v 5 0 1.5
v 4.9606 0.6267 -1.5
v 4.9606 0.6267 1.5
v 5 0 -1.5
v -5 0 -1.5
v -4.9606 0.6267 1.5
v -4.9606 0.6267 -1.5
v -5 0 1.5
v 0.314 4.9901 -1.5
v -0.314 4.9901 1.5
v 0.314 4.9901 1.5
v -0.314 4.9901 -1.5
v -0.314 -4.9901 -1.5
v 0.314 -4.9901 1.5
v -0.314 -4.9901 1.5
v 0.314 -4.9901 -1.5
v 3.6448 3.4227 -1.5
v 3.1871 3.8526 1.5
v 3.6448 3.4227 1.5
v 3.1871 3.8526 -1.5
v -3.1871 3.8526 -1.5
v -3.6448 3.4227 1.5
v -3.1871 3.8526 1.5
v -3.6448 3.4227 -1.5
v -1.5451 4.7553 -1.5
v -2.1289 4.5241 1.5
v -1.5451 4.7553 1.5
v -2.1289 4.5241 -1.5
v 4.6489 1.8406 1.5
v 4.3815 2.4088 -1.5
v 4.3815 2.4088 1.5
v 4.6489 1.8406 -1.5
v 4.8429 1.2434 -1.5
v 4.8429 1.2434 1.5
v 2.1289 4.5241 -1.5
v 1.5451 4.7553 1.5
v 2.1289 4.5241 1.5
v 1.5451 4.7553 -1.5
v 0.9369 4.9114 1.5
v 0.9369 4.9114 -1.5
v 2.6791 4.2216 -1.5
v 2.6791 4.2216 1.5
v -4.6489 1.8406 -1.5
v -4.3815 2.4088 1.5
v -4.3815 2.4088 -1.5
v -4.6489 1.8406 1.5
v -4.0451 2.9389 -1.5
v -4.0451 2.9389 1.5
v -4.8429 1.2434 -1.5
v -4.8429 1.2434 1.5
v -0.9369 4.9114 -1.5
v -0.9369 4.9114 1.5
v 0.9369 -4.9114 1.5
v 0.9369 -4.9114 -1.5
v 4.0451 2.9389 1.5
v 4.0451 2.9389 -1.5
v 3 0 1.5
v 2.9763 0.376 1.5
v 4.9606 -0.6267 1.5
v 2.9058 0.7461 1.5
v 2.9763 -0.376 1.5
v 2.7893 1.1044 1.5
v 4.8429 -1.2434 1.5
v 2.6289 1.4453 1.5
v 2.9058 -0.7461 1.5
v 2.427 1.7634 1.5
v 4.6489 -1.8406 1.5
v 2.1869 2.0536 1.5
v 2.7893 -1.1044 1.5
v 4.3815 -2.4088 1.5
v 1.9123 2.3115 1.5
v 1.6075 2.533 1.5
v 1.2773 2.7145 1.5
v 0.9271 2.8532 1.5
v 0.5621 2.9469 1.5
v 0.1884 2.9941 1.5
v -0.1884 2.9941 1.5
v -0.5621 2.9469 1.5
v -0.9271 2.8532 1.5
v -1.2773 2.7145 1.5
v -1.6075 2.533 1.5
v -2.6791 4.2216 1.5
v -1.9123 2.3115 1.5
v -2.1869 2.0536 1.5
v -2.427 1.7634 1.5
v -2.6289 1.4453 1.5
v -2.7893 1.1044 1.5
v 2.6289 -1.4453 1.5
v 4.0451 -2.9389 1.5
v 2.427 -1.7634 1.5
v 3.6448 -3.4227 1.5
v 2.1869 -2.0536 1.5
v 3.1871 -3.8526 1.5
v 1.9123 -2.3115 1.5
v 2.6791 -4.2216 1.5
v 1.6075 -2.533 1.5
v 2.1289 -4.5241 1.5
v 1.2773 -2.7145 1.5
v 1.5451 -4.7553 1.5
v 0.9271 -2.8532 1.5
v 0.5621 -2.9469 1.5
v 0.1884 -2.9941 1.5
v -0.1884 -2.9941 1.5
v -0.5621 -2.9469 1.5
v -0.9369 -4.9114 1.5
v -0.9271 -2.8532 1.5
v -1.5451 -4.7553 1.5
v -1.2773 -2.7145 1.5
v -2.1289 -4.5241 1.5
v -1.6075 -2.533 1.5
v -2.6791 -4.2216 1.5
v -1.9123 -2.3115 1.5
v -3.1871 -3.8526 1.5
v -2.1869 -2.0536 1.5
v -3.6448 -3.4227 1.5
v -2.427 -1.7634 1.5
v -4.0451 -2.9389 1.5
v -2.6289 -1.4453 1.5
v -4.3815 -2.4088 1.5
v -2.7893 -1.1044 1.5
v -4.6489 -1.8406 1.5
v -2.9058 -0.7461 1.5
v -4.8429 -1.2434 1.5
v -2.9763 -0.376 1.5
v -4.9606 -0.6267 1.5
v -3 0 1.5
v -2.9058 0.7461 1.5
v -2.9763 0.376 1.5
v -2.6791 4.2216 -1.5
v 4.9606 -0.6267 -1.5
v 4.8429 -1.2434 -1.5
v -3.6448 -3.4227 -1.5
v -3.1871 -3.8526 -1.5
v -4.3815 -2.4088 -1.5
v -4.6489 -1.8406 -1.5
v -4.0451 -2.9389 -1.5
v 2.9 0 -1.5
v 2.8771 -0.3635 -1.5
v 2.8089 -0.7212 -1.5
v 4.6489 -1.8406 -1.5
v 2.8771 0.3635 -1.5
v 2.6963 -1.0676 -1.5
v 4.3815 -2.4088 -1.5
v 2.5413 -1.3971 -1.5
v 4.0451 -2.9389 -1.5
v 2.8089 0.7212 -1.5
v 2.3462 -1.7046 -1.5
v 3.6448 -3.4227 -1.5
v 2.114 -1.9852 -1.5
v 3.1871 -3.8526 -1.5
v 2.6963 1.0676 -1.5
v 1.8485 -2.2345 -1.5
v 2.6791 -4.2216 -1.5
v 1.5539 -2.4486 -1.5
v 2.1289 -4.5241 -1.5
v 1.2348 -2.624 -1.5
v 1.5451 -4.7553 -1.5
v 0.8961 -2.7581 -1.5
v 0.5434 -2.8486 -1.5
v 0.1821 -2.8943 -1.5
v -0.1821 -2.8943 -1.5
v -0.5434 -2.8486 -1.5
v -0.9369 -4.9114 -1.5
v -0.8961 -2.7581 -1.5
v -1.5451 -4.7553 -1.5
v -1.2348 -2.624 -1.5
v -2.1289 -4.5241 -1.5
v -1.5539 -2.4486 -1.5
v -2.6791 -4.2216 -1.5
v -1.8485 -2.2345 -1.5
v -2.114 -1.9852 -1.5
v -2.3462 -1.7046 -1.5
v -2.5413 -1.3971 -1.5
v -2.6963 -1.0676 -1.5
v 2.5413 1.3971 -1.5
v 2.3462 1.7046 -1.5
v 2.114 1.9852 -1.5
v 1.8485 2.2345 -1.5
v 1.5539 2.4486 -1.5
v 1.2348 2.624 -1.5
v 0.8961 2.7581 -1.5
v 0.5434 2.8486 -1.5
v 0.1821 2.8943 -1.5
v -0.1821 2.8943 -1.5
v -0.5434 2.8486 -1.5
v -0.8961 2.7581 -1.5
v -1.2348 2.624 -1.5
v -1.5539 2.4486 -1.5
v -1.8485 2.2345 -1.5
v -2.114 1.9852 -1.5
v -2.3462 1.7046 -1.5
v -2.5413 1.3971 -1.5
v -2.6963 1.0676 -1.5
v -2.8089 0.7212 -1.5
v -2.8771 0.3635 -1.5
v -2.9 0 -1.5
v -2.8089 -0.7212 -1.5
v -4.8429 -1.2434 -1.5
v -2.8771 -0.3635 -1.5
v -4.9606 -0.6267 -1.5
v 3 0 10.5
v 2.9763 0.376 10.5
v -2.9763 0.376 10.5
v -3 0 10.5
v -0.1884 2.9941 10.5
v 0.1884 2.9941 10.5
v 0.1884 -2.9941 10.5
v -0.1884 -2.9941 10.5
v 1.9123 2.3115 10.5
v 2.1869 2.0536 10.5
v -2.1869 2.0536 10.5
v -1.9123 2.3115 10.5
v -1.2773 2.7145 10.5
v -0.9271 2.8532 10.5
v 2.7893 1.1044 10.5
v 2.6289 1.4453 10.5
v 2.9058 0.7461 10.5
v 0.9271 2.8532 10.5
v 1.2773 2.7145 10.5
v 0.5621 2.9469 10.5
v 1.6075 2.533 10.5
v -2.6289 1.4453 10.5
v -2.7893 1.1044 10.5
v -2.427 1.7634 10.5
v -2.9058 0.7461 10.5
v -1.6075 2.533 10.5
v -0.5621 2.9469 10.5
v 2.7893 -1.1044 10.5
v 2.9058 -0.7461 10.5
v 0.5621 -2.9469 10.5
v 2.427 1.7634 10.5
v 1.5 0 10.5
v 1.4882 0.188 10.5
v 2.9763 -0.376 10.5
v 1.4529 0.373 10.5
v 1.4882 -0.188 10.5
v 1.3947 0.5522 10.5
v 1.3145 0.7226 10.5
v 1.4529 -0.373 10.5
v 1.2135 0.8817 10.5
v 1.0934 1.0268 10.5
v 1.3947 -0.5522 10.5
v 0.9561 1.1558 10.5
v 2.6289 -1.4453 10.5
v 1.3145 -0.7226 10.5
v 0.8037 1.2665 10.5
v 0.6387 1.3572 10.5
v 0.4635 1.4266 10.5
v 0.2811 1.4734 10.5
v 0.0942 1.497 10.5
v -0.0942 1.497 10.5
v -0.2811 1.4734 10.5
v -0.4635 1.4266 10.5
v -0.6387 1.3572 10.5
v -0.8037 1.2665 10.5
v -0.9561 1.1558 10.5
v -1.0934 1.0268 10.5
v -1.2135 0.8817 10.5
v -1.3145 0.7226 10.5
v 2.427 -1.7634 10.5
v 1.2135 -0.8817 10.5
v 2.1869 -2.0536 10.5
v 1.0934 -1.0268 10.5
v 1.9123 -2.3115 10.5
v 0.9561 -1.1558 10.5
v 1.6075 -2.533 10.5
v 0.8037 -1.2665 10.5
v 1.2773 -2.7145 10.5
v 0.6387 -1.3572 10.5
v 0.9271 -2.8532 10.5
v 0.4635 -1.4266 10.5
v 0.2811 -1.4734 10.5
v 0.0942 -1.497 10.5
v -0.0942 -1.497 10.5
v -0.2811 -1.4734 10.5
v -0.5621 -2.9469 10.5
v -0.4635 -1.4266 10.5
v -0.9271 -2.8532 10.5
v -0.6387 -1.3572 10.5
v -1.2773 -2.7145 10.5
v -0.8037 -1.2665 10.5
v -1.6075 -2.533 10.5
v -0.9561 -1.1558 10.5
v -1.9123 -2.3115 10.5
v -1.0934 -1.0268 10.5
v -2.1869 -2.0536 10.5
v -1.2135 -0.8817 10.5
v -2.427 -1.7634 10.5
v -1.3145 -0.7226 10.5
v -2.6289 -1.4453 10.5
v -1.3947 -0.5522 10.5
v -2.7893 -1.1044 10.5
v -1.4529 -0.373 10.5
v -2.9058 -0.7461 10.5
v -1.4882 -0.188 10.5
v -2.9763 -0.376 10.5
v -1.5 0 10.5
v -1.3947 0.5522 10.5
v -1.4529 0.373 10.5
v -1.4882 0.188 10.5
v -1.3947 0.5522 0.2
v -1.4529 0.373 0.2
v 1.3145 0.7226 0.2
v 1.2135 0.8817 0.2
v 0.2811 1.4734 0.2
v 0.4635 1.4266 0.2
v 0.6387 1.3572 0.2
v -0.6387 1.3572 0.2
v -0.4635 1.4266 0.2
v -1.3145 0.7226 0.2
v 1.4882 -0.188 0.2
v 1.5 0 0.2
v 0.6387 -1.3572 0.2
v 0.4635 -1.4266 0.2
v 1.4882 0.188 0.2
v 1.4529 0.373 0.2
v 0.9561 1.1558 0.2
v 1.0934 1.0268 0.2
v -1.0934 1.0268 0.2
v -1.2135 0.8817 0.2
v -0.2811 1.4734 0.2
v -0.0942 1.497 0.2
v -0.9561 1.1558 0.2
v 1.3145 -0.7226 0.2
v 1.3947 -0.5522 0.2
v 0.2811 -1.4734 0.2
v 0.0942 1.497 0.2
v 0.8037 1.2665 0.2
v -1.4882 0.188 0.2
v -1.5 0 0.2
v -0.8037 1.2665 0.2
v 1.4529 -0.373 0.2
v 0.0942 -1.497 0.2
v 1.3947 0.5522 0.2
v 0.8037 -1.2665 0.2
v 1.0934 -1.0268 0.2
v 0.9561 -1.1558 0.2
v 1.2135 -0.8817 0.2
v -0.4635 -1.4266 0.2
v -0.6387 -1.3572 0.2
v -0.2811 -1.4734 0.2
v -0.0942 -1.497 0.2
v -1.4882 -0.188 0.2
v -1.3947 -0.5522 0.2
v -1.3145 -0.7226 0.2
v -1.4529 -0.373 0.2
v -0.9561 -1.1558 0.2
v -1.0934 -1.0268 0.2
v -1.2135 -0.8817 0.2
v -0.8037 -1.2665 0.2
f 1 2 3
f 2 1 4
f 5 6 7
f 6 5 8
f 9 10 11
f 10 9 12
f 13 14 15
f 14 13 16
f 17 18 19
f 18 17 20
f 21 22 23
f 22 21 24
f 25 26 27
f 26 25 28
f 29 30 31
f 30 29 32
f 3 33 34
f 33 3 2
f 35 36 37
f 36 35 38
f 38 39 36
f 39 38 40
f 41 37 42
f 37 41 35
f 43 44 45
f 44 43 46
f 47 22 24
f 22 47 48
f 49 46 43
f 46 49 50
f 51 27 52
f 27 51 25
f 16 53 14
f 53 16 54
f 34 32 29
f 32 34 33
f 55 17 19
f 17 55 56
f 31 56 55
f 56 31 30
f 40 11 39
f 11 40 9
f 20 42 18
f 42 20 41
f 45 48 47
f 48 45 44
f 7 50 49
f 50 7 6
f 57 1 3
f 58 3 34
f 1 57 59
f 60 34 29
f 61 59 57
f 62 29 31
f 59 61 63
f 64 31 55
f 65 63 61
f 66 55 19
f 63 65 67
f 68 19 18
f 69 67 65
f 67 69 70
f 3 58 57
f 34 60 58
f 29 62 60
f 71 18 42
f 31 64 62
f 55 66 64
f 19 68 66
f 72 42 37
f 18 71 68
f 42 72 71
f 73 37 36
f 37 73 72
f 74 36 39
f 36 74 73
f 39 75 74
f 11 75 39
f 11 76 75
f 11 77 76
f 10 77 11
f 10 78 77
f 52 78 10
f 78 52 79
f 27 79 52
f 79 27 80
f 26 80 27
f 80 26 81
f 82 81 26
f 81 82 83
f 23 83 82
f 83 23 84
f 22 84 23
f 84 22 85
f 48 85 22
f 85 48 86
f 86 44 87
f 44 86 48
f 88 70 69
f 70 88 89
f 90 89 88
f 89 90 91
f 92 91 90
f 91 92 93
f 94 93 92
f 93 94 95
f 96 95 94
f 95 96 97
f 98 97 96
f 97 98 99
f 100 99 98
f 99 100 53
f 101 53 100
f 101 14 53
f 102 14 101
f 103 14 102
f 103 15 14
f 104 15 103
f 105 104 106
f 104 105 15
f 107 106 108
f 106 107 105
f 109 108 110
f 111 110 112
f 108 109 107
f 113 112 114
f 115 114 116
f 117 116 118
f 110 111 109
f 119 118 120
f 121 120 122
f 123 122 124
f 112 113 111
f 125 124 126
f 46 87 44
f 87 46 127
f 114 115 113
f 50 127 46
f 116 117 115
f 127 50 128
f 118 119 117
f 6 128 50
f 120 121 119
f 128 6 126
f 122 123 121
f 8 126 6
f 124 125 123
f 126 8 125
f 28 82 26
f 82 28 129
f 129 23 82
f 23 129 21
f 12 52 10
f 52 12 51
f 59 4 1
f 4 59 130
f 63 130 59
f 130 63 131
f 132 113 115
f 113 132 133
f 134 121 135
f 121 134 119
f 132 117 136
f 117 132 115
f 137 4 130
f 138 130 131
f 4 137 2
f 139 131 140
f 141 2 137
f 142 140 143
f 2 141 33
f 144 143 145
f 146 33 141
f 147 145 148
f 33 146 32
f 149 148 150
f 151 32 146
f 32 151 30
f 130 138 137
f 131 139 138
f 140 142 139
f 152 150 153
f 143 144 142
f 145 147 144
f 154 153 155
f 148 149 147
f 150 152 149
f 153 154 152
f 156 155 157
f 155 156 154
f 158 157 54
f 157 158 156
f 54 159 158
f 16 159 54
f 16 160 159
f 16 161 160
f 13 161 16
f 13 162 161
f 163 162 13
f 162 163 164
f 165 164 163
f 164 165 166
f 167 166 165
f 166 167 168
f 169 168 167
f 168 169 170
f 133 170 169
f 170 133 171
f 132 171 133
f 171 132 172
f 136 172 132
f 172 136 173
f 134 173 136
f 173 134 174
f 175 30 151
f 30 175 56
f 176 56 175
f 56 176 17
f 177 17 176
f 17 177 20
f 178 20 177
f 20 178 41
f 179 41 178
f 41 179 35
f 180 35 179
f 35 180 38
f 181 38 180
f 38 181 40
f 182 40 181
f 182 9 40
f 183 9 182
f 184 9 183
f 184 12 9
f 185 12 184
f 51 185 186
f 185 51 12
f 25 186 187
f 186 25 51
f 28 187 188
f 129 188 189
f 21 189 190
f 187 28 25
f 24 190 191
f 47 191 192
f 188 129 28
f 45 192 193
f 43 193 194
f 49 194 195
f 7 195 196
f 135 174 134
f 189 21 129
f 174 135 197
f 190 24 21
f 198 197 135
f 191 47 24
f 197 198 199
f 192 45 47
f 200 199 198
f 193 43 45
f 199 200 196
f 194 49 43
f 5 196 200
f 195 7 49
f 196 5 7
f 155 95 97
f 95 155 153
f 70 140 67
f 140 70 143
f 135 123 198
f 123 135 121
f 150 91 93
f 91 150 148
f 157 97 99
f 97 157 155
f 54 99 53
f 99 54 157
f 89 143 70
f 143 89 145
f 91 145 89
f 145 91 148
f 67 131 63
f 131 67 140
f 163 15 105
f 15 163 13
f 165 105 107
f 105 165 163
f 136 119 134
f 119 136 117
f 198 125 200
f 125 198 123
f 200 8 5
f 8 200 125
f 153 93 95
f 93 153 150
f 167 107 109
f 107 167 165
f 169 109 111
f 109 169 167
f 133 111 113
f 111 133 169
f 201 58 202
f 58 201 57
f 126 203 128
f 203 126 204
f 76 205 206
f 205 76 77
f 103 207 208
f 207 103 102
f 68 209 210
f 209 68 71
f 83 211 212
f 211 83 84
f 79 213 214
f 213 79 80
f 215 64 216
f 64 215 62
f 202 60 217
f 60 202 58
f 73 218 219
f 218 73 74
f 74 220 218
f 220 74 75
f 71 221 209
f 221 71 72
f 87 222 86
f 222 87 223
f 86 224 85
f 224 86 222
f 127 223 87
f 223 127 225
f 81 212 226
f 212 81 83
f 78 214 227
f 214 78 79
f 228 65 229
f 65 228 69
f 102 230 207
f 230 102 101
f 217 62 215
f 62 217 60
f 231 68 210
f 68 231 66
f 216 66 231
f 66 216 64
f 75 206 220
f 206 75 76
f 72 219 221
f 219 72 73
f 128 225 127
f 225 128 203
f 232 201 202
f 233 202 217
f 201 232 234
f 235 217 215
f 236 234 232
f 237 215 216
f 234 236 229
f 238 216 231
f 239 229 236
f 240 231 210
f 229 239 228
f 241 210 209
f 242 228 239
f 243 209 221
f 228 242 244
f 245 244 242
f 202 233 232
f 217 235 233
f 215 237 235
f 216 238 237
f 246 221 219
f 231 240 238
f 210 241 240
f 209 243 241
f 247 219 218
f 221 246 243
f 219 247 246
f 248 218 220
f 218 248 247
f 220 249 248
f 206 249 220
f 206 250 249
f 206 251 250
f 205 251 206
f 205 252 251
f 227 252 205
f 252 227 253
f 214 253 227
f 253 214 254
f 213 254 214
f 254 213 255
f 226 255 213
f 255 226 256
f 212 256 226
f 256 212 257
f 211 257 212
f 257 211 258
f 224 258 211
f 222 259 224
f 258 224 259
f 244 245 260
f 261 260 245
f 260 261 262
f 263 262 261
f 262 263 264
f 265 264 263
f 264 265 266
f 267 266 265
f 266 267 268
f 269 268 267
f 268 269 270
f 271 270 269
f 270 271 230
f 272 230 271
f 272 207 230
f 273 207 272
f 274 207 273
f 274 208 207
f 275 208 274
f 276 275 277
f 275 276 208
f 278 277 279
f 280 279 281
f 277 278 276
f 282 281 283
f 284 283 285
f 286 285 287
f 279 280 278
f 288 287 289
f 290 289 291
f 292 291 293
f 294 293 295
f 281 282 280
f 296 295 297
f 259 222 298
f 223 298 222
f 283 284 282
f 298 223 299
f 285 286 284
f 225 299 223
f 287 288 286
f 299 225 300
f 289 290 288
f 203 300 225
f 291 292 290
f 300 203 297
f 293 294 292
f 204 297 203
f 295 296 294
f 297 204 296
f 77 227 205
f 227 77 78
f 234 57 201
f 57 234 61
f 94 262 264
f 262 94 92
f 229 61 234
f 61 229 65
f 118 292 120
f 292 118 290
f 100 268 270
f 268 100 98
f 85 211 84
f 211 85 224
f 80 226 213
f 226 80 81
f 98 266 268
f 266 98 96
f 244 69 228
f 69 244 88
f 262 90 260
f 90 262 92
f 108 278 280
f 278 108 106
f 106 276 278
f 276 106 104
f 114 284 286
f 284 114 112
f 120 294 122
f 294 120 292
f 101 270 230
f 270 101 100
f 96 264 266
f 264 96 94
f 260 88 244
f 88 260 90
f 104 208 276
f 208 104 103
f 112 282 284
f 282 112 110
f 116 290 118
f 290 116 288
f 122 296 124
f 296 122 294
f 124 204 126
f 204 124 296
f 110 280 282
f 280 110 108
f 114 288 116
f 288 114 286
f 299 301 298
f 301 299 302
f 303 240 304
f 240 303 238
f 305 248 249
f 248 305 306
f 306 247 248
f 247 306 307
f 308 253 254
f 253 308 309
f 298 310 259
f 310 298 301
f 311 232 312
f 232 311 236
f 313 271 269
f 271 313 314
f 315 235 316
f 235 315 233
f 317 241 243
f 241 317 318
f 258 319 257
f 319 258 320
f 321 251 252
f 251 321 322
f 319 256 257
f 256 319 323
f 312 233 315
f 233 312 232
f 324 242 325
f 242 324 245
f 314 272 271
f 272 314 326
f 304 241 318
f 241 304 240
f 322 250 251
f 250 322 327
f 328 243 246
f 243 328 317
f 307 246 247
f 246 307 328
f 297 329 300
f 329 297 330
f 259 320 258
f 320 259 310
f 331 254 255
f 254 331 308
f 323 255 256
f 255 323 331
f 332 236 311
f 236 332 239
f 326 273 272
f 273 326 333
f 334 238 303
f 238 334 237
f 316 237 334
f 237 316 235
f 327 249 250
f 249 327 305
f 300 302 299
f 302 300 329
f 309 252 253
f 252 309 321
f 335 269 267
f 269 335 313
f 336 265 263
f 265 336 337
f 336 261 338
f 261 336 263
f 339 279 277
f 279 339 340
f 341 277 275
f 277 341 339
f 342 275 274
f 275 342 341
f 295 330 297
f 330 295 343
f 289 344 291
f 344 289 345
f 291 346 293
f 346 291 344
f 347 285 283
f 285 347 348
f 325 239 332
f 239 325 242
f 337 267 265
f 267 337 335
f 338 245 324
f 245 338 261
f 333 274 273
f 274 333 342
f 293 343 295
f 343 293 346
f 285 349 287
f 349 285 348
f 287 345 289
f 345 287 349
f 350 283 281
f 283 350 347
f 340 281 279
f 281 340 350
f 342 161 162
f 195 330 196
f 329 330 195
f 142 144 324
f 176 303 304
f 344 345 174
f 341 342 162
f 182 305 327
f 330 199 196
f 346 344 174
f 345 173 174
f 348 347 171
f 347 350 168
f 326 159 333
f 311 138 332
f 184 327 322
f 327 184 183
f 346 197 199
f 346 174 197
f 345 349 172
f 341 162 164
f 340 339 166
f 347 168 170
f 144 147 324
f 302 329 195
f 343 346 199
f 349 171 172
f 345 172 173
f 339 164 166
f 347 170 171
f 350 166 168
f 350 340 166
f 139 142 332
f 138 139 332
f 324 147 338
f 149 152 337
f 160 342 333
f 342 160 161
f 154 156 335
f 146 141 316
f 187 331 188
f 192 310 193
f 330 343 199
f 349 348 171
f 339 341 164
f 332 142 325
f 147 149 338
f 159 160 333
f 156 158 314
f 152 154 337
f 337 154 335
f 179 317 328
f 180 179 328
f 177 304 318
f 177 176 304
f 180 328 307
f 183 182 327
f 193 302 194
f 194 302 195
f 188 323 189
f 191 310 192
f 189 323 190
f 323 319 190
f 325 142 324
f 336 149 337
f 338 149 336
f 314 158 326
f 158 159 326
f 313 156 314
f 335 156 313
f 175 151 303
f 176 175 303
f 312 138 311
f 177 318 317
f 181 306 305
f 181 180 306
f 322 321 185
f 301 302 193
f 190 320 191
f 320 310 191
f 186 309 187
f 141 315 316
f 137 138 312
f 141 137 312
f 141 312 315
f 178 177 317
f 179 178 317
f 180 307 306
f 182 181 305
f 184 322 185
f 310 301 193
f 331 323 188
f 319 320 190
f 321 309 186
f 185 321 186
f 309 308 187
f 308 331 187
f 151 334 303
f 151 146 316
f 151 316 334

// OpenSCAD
$fn = 50;


difference() {
	union() {
		translate(v = [0, 0, -1.5000000000]) {
			rotate(a = [0, 0, 0]) {
				cylinder(h = 3, r = 5.0000000000);
			}
		}
		translate(v = [0, 0, -1.5000000000]) {
			rotate(a = [0, 0, 0]) {
				cylinder(h = 12, r = 3.0000000000);
			}
		}
	}
	union() {
		translate(v = [0, 0, -125.0000000000]) {
			rotate(a = [0, 0, 0]) {
				cylinder(h = 250, r = 1.5000000000);
			}
		}
		#translate(v = [0, 0, 0.2000000000]) {
			rotate(a = [0, 180, 0]) {
				cylinder(h = 1.7000000000, r1 = 1.5000000000, r2 = 2.9000000000);
			}
		}
		#translate(v = [0, 0, 10.5000000000]) {
			rotate(a = [0, 180, 0]) {
				cylinder(h = 12, r = 1.5000000000);
			}
		}
	}
}
